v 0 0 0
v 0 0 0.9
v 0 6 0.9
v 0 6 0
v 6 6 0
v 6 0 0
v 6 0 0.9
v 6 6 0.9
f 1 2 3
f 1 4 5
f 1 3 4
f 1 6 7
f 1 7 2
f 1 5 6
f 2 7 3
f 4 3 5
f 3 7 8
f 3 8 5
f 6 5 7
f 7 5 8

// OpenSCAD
/* Warning, this is a very basic generator with a lot of approximation 
input data : [VQFN, PQA, 6x6x0.9mm, 40, , A, C04-01109A]
generated by com.zoubworld.electronics.cad.model3d.Basic
Date : Sun Feb 15 10:50:49 CET 2026
*/

//body
color("black")
translate([0,0,0])
cube([6.0,6.0,0.9], center=false);
